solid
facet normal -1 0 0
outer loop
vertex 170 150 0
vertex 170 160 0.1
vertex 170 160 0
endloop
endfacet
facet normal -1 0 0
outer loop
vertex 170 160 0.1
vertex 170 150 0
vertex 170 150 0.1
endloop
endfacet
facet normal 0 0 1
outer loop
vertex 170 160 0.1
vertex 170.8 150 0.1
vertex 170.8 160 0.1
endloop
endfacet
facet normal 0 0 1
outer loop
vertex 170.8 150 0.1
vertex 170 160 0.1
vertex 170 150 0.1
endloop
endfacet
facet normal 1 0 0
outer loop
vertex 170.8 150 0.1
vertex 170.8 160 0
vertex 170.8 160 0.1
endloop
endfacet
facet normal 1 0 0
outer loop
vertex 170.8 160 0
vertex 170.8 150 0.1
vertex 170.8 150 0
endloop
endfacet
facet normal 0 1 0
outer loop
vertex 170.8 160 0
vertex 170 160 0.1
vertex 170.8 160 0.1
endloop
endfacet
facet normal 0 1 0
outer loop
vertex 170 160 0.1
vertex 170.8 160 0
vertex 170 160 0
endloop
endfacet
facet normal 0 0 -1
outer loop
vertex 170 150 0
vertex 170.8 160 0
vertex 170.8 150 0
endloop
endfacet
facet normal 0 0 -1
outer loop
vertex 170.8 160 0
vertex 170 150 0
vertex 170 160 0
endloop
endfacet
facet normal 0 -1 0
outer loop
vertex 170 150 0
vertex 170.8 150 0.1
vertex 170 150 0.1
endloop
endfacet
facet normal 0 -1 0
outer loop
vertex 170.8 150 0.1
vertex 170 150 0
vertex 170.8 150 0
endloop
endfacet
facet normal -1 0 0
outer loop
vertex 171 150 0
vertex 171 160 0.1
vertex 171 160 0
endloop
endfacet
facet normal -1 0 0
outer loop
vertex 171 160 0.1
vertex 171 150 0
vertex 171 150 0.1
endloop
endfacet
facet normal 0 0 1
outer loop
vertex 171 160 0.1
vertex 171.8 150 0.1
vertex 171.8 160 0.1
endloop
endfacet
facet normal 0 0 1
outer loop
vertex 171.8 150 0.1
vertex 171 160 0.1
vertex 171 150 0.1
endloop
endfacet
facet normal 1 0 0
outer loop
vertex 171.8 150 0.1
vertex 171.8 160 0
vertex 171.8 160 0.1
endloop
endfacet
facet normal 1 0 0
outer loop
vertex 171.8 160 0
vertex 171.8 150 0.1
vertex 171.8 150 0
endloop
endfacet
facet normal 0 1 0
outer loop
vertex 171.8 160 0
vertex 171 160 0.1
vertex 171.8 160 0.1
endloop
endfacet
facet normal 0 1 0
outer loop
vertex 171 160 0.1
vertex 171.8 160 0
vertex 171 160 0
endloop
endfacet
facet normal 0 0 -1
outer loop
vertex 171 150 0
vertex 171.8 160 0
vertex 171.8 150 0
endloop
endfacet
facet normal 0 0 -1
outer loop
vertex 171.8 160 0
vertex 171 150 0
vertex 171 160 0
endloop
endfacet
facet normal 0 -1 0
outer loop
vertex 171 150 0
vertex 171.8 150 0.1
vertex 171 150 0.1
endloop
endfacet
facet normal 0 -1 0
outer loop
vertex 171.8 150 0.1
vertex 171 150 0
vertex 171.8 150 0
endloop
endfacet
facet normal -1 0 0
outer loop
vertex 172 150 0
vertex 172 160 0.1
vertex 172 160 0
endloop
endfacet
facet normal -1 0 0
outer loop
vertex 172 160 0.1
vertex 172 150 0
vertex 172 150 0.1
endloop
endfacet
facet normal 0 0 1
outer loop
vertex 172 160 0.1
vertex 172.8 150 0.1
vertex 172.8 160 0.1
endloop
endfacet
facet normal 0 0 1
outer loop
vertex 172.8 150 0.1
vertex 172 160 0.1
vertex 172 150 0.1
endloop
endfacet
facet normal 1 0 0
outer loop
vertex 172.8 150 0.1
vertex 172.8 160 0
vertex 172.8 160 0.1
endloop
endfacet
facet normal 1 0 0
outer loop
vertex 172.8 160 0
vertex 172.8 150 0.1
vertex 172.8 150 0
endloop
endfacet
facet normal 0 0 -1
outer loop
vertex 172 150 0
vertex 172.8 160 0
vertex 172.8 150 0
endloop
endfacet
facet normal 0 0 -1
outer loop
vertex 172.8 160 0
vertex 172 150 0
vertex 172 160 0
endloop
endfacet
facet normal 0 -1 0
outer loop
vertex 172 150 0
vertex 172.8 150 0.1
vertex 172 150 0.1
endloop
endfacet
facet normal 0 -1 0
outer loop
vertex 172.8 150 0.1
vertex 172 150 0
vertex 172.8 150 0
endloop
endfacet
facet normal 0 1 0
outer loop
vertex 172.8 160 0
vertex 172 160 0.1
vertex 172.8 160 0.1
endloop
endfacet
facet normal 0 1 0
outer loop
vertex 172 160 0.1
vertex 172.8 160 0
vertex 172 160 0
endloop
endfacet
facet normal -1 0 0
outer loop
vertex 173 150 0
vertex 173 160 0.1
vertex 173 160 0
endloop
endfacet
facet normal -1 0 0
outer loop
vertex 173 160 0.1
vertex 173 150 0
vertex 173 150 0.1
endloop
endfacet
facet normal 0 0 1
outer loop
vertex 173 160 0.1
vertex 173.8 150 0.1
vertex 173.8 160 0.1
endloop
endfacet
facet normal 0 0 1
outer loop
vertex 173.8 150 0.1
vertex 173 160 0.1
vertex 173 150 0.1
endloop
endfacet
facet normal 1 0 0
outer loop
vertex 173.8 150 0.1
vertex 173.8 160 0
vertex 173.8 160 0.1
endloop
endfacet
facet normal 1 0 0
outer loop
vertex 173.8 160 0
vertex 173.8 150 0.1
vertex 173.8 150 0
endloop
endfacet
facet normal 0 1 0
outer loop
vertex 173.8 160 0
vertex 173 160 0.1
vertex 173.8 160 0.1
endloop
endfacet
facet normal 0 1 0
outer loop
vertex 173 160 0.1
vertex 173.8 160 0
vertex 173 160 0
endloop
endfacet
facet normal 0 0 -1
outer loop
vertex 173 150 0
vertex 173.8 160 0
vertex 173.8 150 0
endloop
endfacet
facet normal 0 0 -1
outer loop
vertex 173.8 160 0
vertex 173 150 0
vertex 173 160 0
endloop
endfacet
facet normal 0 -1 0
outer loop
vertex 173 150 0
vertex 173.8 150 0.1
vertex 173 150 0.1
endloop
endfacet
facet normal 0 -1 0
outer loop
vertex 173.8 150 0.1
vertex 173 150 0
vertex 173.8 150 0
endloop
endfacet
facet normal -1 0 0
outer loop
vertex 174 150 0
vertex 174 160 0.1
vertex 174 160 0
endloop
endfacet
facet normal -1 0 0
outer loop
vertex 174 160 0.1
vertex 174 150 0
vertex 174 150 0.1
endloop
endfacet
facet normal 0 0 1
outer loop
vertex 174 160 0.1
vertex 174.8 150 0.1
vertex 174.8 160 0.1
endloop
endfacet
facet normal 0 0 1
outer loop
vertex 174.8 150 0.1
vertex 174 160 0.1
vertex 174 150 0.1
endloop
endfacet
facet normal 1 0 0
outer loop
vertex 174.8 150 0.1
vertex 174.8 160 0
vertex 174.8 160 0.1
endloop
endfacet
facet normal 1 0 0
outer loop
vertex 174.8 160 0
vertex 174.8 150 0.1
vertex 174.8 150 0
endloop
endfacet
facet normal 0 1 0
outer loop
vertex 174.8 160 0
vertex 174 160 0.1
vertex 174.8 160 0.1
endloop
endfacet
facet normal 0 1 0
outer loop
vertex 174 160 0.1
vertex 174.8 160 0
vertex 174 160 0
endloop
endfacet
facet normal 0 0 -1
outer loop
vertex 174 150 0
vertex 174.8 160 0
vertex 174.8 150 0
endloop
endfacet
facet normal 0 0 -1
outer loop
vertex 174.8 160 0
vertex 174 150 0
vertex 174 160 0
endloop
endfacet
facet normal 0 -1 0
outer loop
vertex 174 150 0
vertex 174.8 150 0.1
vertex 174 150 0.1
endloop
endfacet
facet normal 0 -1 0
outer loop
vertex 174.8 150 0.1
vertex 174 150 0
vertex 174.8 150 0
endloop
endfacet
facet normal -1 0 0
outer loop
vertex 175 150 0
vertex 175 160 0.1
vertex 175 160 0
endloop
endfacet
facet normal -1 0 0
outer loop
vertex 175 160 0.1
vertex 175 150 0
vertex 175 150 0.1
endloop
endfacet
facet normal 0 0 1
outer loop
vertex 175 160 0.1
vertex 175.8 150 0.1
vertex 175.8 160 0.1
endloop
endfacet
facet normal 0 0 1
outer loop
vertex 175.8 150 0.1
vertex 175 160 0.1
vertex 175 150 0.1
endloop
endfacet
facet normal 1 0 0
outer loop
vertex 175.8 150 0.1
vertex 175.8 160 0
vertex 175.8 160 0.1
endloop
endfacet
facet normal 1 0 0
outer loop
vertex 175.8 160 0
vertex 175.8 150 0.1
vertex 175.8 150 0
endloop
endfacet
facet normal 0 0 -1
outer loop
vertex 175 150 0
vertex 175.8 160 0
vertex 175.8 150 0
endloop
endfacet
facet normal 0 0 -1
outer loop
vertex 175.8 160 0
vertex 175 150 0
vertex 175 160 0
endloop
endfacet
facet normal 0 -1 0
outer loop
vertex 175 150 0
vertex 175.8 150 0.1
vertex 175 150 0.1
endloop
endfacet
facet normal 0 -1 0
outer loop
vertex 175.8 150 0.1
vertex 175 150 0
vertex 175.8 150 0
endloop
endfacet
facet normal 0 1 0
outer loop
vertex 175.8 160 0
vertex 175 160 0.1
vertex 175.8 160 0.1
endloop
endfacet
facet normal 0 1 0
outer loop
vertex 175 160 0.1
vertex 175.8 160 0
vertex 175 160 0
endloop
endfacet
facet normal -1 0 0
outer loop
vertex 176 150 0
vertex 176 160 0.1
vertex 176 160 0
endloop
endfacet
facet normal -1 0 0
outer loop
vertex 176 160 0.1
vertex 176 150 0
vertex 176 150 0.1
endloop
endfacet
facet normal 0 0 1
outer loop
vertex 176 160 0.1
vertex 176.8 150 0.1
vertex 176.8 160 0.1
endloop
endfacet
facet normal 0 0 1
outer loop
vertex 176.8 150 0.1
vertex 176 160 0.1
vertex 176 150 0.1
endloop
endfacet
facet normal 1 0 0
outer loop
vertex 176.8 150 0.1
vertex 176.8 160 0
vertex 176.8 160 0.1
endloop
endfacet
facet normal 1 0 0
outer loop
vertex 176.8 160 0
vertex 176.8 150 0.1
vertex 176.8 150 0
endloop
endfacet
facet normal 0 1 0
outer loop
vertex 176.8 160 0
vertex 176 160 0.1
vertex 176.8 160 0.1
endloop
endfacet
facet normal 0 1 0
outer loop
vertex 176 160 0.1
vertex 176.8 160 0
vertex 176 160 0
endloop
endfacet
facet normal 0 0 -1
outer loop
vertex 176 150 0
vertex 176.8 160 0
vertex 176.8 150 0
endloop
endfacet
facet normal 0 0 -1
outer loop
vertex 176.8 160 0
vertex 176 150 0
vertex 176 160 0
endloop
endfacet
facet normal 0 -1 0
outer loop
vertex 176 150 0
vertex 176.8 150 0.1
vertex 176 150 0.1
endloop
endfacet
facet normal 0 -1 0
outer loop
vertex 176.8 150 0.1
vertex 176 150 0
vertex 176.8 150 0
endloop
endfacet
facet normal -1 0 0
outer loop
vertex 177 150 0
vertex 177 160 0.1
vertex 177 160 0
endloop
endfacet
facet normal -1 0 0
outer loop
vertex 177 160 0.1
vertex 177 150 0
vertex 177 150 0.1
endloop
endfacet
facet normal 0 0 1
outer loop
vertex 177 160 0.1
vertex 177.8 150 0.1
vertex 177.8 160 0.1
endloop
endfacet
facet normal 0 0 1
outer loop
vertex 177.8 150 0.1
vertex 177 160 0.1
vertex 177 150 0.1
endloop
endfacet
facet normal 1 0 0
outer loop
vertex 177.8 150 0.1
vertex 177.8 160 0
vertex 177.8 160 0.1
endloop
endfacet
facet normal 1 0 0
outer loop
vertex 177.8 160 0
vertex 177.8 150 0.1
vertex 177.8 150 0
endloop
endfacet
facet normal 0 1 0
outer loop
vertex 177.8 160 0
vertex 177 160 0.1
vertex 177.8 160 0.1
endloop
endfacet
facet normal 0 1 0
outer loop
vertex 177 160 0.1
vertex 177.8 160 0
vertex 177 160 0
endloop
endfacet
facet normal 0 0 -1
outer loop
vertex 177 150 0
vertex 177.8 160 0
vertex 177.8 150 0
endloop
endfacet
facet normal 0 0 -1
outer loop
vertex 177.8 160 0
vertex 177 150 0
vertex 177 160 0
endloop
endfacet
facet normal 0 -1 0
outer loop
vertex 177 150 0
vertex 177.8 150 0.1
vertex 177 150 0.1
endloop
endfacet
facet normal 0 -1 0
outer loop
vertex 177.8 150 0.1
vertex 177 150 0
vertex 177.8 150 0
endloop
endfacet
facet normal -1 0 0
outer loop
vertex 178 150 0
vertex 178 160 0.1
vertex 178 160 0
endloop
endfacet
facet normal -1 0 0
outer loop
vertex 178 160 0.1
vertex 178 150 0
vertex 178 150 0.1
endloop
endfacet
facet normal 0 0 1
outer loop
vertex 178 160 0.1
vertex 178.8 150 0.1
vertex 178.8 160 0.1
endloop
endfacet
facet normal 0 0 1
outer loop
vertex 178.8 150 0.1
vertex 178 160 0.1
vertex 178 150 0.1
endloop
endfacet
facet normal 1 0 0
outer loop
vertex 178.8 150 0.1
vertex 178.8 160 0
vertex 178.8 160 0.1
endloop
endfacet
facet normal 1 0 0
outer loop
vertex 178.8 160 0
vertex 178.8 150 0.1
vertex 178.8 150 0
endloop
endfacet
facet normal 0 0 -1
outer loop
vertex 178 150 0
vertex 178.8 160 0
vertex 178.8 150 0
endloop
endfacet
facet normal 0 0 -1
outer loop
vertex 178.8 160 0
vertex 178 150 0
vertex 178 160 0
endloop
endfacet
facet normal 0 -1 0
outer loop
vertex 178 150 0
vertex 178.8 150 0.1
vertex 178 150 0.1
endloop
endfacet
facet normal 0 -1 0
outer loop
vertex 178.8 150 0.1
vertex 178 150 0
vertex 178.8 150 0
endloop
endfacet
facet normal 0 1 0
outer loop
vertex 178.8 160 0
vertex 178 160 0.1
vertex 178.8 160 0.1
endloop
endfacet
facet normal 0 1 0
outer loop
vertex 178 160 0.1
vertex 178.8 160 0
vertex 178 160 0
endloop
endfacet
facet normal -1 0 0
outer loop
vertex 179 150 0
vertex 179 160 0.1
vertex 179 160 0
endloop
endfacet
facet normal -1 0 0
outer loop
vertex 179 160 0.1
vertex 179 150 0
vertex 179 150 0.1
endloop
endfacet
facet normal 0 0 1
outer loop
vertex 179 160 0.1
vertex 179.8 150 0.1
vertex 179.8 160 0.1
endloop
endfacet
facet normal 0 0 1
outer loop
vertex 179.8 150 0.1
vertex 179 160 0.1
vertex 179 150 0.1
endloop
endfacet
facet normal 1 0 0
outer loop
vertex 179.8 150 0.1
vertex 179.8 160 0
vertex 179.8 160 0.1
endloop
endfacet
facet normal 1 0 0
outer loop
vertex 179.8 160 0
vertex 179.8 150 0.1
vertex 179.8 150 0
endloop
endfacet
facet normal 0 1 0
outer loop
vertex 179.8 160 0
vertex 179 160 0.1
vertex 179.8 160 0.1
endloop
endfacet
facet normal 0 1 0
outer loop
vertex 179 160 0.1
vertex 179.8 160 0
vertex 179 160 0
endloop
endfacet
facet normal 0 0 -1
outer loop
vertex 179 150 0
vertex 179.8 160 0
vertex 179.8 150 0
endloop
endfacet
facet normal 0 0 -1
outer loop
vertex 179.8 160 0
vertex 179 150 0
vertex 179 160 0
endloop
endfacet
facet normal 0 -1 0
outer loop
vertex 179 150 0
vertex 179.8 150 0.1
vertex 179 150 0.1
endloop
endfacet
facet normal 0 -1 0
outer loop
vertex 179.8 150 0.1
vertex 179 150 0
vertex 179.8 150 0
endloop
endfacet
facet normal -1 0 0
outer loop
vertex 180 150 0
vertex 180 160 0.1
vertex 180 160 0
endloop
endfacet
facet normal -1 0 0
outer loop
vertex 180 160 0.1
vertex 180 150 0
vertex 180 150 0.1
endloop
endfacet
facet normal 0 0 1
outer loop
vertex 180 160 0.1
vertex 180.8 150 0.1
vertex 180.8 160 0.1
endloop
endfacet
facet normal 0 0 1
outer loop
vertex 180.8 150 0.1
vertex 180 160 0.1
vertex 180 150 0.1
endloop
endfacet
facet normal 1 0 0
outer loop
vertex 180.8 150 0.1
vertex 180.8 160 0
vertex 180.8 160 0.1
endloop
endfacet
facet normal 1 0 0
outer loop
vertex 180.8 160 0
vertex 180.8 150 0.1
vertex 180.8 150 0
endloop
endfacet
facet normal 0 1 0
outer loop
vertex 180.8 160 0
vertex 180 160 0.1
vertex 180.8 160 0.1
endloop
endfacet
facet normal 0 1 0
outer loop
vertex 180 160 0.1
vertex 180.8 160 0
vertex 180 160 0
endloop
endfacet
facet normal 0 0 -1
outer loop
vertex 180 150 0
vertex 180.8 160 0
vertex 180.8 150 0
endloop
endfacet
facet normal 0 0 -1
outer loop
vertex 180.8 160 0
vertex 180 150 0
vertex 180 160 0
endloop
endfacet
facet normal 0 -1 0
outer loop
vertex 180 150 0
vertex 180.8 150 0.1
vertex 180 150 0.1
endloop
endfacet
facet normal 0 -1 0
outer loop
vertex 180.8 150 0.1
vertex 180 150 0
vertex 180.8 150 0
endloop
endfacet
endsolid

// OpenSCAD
translate([10+160,10+140,0])
        for (i = [0 : 10]){
            translate([i,0,0])
                cube(size = [0.8,10,0.1]);
    }
